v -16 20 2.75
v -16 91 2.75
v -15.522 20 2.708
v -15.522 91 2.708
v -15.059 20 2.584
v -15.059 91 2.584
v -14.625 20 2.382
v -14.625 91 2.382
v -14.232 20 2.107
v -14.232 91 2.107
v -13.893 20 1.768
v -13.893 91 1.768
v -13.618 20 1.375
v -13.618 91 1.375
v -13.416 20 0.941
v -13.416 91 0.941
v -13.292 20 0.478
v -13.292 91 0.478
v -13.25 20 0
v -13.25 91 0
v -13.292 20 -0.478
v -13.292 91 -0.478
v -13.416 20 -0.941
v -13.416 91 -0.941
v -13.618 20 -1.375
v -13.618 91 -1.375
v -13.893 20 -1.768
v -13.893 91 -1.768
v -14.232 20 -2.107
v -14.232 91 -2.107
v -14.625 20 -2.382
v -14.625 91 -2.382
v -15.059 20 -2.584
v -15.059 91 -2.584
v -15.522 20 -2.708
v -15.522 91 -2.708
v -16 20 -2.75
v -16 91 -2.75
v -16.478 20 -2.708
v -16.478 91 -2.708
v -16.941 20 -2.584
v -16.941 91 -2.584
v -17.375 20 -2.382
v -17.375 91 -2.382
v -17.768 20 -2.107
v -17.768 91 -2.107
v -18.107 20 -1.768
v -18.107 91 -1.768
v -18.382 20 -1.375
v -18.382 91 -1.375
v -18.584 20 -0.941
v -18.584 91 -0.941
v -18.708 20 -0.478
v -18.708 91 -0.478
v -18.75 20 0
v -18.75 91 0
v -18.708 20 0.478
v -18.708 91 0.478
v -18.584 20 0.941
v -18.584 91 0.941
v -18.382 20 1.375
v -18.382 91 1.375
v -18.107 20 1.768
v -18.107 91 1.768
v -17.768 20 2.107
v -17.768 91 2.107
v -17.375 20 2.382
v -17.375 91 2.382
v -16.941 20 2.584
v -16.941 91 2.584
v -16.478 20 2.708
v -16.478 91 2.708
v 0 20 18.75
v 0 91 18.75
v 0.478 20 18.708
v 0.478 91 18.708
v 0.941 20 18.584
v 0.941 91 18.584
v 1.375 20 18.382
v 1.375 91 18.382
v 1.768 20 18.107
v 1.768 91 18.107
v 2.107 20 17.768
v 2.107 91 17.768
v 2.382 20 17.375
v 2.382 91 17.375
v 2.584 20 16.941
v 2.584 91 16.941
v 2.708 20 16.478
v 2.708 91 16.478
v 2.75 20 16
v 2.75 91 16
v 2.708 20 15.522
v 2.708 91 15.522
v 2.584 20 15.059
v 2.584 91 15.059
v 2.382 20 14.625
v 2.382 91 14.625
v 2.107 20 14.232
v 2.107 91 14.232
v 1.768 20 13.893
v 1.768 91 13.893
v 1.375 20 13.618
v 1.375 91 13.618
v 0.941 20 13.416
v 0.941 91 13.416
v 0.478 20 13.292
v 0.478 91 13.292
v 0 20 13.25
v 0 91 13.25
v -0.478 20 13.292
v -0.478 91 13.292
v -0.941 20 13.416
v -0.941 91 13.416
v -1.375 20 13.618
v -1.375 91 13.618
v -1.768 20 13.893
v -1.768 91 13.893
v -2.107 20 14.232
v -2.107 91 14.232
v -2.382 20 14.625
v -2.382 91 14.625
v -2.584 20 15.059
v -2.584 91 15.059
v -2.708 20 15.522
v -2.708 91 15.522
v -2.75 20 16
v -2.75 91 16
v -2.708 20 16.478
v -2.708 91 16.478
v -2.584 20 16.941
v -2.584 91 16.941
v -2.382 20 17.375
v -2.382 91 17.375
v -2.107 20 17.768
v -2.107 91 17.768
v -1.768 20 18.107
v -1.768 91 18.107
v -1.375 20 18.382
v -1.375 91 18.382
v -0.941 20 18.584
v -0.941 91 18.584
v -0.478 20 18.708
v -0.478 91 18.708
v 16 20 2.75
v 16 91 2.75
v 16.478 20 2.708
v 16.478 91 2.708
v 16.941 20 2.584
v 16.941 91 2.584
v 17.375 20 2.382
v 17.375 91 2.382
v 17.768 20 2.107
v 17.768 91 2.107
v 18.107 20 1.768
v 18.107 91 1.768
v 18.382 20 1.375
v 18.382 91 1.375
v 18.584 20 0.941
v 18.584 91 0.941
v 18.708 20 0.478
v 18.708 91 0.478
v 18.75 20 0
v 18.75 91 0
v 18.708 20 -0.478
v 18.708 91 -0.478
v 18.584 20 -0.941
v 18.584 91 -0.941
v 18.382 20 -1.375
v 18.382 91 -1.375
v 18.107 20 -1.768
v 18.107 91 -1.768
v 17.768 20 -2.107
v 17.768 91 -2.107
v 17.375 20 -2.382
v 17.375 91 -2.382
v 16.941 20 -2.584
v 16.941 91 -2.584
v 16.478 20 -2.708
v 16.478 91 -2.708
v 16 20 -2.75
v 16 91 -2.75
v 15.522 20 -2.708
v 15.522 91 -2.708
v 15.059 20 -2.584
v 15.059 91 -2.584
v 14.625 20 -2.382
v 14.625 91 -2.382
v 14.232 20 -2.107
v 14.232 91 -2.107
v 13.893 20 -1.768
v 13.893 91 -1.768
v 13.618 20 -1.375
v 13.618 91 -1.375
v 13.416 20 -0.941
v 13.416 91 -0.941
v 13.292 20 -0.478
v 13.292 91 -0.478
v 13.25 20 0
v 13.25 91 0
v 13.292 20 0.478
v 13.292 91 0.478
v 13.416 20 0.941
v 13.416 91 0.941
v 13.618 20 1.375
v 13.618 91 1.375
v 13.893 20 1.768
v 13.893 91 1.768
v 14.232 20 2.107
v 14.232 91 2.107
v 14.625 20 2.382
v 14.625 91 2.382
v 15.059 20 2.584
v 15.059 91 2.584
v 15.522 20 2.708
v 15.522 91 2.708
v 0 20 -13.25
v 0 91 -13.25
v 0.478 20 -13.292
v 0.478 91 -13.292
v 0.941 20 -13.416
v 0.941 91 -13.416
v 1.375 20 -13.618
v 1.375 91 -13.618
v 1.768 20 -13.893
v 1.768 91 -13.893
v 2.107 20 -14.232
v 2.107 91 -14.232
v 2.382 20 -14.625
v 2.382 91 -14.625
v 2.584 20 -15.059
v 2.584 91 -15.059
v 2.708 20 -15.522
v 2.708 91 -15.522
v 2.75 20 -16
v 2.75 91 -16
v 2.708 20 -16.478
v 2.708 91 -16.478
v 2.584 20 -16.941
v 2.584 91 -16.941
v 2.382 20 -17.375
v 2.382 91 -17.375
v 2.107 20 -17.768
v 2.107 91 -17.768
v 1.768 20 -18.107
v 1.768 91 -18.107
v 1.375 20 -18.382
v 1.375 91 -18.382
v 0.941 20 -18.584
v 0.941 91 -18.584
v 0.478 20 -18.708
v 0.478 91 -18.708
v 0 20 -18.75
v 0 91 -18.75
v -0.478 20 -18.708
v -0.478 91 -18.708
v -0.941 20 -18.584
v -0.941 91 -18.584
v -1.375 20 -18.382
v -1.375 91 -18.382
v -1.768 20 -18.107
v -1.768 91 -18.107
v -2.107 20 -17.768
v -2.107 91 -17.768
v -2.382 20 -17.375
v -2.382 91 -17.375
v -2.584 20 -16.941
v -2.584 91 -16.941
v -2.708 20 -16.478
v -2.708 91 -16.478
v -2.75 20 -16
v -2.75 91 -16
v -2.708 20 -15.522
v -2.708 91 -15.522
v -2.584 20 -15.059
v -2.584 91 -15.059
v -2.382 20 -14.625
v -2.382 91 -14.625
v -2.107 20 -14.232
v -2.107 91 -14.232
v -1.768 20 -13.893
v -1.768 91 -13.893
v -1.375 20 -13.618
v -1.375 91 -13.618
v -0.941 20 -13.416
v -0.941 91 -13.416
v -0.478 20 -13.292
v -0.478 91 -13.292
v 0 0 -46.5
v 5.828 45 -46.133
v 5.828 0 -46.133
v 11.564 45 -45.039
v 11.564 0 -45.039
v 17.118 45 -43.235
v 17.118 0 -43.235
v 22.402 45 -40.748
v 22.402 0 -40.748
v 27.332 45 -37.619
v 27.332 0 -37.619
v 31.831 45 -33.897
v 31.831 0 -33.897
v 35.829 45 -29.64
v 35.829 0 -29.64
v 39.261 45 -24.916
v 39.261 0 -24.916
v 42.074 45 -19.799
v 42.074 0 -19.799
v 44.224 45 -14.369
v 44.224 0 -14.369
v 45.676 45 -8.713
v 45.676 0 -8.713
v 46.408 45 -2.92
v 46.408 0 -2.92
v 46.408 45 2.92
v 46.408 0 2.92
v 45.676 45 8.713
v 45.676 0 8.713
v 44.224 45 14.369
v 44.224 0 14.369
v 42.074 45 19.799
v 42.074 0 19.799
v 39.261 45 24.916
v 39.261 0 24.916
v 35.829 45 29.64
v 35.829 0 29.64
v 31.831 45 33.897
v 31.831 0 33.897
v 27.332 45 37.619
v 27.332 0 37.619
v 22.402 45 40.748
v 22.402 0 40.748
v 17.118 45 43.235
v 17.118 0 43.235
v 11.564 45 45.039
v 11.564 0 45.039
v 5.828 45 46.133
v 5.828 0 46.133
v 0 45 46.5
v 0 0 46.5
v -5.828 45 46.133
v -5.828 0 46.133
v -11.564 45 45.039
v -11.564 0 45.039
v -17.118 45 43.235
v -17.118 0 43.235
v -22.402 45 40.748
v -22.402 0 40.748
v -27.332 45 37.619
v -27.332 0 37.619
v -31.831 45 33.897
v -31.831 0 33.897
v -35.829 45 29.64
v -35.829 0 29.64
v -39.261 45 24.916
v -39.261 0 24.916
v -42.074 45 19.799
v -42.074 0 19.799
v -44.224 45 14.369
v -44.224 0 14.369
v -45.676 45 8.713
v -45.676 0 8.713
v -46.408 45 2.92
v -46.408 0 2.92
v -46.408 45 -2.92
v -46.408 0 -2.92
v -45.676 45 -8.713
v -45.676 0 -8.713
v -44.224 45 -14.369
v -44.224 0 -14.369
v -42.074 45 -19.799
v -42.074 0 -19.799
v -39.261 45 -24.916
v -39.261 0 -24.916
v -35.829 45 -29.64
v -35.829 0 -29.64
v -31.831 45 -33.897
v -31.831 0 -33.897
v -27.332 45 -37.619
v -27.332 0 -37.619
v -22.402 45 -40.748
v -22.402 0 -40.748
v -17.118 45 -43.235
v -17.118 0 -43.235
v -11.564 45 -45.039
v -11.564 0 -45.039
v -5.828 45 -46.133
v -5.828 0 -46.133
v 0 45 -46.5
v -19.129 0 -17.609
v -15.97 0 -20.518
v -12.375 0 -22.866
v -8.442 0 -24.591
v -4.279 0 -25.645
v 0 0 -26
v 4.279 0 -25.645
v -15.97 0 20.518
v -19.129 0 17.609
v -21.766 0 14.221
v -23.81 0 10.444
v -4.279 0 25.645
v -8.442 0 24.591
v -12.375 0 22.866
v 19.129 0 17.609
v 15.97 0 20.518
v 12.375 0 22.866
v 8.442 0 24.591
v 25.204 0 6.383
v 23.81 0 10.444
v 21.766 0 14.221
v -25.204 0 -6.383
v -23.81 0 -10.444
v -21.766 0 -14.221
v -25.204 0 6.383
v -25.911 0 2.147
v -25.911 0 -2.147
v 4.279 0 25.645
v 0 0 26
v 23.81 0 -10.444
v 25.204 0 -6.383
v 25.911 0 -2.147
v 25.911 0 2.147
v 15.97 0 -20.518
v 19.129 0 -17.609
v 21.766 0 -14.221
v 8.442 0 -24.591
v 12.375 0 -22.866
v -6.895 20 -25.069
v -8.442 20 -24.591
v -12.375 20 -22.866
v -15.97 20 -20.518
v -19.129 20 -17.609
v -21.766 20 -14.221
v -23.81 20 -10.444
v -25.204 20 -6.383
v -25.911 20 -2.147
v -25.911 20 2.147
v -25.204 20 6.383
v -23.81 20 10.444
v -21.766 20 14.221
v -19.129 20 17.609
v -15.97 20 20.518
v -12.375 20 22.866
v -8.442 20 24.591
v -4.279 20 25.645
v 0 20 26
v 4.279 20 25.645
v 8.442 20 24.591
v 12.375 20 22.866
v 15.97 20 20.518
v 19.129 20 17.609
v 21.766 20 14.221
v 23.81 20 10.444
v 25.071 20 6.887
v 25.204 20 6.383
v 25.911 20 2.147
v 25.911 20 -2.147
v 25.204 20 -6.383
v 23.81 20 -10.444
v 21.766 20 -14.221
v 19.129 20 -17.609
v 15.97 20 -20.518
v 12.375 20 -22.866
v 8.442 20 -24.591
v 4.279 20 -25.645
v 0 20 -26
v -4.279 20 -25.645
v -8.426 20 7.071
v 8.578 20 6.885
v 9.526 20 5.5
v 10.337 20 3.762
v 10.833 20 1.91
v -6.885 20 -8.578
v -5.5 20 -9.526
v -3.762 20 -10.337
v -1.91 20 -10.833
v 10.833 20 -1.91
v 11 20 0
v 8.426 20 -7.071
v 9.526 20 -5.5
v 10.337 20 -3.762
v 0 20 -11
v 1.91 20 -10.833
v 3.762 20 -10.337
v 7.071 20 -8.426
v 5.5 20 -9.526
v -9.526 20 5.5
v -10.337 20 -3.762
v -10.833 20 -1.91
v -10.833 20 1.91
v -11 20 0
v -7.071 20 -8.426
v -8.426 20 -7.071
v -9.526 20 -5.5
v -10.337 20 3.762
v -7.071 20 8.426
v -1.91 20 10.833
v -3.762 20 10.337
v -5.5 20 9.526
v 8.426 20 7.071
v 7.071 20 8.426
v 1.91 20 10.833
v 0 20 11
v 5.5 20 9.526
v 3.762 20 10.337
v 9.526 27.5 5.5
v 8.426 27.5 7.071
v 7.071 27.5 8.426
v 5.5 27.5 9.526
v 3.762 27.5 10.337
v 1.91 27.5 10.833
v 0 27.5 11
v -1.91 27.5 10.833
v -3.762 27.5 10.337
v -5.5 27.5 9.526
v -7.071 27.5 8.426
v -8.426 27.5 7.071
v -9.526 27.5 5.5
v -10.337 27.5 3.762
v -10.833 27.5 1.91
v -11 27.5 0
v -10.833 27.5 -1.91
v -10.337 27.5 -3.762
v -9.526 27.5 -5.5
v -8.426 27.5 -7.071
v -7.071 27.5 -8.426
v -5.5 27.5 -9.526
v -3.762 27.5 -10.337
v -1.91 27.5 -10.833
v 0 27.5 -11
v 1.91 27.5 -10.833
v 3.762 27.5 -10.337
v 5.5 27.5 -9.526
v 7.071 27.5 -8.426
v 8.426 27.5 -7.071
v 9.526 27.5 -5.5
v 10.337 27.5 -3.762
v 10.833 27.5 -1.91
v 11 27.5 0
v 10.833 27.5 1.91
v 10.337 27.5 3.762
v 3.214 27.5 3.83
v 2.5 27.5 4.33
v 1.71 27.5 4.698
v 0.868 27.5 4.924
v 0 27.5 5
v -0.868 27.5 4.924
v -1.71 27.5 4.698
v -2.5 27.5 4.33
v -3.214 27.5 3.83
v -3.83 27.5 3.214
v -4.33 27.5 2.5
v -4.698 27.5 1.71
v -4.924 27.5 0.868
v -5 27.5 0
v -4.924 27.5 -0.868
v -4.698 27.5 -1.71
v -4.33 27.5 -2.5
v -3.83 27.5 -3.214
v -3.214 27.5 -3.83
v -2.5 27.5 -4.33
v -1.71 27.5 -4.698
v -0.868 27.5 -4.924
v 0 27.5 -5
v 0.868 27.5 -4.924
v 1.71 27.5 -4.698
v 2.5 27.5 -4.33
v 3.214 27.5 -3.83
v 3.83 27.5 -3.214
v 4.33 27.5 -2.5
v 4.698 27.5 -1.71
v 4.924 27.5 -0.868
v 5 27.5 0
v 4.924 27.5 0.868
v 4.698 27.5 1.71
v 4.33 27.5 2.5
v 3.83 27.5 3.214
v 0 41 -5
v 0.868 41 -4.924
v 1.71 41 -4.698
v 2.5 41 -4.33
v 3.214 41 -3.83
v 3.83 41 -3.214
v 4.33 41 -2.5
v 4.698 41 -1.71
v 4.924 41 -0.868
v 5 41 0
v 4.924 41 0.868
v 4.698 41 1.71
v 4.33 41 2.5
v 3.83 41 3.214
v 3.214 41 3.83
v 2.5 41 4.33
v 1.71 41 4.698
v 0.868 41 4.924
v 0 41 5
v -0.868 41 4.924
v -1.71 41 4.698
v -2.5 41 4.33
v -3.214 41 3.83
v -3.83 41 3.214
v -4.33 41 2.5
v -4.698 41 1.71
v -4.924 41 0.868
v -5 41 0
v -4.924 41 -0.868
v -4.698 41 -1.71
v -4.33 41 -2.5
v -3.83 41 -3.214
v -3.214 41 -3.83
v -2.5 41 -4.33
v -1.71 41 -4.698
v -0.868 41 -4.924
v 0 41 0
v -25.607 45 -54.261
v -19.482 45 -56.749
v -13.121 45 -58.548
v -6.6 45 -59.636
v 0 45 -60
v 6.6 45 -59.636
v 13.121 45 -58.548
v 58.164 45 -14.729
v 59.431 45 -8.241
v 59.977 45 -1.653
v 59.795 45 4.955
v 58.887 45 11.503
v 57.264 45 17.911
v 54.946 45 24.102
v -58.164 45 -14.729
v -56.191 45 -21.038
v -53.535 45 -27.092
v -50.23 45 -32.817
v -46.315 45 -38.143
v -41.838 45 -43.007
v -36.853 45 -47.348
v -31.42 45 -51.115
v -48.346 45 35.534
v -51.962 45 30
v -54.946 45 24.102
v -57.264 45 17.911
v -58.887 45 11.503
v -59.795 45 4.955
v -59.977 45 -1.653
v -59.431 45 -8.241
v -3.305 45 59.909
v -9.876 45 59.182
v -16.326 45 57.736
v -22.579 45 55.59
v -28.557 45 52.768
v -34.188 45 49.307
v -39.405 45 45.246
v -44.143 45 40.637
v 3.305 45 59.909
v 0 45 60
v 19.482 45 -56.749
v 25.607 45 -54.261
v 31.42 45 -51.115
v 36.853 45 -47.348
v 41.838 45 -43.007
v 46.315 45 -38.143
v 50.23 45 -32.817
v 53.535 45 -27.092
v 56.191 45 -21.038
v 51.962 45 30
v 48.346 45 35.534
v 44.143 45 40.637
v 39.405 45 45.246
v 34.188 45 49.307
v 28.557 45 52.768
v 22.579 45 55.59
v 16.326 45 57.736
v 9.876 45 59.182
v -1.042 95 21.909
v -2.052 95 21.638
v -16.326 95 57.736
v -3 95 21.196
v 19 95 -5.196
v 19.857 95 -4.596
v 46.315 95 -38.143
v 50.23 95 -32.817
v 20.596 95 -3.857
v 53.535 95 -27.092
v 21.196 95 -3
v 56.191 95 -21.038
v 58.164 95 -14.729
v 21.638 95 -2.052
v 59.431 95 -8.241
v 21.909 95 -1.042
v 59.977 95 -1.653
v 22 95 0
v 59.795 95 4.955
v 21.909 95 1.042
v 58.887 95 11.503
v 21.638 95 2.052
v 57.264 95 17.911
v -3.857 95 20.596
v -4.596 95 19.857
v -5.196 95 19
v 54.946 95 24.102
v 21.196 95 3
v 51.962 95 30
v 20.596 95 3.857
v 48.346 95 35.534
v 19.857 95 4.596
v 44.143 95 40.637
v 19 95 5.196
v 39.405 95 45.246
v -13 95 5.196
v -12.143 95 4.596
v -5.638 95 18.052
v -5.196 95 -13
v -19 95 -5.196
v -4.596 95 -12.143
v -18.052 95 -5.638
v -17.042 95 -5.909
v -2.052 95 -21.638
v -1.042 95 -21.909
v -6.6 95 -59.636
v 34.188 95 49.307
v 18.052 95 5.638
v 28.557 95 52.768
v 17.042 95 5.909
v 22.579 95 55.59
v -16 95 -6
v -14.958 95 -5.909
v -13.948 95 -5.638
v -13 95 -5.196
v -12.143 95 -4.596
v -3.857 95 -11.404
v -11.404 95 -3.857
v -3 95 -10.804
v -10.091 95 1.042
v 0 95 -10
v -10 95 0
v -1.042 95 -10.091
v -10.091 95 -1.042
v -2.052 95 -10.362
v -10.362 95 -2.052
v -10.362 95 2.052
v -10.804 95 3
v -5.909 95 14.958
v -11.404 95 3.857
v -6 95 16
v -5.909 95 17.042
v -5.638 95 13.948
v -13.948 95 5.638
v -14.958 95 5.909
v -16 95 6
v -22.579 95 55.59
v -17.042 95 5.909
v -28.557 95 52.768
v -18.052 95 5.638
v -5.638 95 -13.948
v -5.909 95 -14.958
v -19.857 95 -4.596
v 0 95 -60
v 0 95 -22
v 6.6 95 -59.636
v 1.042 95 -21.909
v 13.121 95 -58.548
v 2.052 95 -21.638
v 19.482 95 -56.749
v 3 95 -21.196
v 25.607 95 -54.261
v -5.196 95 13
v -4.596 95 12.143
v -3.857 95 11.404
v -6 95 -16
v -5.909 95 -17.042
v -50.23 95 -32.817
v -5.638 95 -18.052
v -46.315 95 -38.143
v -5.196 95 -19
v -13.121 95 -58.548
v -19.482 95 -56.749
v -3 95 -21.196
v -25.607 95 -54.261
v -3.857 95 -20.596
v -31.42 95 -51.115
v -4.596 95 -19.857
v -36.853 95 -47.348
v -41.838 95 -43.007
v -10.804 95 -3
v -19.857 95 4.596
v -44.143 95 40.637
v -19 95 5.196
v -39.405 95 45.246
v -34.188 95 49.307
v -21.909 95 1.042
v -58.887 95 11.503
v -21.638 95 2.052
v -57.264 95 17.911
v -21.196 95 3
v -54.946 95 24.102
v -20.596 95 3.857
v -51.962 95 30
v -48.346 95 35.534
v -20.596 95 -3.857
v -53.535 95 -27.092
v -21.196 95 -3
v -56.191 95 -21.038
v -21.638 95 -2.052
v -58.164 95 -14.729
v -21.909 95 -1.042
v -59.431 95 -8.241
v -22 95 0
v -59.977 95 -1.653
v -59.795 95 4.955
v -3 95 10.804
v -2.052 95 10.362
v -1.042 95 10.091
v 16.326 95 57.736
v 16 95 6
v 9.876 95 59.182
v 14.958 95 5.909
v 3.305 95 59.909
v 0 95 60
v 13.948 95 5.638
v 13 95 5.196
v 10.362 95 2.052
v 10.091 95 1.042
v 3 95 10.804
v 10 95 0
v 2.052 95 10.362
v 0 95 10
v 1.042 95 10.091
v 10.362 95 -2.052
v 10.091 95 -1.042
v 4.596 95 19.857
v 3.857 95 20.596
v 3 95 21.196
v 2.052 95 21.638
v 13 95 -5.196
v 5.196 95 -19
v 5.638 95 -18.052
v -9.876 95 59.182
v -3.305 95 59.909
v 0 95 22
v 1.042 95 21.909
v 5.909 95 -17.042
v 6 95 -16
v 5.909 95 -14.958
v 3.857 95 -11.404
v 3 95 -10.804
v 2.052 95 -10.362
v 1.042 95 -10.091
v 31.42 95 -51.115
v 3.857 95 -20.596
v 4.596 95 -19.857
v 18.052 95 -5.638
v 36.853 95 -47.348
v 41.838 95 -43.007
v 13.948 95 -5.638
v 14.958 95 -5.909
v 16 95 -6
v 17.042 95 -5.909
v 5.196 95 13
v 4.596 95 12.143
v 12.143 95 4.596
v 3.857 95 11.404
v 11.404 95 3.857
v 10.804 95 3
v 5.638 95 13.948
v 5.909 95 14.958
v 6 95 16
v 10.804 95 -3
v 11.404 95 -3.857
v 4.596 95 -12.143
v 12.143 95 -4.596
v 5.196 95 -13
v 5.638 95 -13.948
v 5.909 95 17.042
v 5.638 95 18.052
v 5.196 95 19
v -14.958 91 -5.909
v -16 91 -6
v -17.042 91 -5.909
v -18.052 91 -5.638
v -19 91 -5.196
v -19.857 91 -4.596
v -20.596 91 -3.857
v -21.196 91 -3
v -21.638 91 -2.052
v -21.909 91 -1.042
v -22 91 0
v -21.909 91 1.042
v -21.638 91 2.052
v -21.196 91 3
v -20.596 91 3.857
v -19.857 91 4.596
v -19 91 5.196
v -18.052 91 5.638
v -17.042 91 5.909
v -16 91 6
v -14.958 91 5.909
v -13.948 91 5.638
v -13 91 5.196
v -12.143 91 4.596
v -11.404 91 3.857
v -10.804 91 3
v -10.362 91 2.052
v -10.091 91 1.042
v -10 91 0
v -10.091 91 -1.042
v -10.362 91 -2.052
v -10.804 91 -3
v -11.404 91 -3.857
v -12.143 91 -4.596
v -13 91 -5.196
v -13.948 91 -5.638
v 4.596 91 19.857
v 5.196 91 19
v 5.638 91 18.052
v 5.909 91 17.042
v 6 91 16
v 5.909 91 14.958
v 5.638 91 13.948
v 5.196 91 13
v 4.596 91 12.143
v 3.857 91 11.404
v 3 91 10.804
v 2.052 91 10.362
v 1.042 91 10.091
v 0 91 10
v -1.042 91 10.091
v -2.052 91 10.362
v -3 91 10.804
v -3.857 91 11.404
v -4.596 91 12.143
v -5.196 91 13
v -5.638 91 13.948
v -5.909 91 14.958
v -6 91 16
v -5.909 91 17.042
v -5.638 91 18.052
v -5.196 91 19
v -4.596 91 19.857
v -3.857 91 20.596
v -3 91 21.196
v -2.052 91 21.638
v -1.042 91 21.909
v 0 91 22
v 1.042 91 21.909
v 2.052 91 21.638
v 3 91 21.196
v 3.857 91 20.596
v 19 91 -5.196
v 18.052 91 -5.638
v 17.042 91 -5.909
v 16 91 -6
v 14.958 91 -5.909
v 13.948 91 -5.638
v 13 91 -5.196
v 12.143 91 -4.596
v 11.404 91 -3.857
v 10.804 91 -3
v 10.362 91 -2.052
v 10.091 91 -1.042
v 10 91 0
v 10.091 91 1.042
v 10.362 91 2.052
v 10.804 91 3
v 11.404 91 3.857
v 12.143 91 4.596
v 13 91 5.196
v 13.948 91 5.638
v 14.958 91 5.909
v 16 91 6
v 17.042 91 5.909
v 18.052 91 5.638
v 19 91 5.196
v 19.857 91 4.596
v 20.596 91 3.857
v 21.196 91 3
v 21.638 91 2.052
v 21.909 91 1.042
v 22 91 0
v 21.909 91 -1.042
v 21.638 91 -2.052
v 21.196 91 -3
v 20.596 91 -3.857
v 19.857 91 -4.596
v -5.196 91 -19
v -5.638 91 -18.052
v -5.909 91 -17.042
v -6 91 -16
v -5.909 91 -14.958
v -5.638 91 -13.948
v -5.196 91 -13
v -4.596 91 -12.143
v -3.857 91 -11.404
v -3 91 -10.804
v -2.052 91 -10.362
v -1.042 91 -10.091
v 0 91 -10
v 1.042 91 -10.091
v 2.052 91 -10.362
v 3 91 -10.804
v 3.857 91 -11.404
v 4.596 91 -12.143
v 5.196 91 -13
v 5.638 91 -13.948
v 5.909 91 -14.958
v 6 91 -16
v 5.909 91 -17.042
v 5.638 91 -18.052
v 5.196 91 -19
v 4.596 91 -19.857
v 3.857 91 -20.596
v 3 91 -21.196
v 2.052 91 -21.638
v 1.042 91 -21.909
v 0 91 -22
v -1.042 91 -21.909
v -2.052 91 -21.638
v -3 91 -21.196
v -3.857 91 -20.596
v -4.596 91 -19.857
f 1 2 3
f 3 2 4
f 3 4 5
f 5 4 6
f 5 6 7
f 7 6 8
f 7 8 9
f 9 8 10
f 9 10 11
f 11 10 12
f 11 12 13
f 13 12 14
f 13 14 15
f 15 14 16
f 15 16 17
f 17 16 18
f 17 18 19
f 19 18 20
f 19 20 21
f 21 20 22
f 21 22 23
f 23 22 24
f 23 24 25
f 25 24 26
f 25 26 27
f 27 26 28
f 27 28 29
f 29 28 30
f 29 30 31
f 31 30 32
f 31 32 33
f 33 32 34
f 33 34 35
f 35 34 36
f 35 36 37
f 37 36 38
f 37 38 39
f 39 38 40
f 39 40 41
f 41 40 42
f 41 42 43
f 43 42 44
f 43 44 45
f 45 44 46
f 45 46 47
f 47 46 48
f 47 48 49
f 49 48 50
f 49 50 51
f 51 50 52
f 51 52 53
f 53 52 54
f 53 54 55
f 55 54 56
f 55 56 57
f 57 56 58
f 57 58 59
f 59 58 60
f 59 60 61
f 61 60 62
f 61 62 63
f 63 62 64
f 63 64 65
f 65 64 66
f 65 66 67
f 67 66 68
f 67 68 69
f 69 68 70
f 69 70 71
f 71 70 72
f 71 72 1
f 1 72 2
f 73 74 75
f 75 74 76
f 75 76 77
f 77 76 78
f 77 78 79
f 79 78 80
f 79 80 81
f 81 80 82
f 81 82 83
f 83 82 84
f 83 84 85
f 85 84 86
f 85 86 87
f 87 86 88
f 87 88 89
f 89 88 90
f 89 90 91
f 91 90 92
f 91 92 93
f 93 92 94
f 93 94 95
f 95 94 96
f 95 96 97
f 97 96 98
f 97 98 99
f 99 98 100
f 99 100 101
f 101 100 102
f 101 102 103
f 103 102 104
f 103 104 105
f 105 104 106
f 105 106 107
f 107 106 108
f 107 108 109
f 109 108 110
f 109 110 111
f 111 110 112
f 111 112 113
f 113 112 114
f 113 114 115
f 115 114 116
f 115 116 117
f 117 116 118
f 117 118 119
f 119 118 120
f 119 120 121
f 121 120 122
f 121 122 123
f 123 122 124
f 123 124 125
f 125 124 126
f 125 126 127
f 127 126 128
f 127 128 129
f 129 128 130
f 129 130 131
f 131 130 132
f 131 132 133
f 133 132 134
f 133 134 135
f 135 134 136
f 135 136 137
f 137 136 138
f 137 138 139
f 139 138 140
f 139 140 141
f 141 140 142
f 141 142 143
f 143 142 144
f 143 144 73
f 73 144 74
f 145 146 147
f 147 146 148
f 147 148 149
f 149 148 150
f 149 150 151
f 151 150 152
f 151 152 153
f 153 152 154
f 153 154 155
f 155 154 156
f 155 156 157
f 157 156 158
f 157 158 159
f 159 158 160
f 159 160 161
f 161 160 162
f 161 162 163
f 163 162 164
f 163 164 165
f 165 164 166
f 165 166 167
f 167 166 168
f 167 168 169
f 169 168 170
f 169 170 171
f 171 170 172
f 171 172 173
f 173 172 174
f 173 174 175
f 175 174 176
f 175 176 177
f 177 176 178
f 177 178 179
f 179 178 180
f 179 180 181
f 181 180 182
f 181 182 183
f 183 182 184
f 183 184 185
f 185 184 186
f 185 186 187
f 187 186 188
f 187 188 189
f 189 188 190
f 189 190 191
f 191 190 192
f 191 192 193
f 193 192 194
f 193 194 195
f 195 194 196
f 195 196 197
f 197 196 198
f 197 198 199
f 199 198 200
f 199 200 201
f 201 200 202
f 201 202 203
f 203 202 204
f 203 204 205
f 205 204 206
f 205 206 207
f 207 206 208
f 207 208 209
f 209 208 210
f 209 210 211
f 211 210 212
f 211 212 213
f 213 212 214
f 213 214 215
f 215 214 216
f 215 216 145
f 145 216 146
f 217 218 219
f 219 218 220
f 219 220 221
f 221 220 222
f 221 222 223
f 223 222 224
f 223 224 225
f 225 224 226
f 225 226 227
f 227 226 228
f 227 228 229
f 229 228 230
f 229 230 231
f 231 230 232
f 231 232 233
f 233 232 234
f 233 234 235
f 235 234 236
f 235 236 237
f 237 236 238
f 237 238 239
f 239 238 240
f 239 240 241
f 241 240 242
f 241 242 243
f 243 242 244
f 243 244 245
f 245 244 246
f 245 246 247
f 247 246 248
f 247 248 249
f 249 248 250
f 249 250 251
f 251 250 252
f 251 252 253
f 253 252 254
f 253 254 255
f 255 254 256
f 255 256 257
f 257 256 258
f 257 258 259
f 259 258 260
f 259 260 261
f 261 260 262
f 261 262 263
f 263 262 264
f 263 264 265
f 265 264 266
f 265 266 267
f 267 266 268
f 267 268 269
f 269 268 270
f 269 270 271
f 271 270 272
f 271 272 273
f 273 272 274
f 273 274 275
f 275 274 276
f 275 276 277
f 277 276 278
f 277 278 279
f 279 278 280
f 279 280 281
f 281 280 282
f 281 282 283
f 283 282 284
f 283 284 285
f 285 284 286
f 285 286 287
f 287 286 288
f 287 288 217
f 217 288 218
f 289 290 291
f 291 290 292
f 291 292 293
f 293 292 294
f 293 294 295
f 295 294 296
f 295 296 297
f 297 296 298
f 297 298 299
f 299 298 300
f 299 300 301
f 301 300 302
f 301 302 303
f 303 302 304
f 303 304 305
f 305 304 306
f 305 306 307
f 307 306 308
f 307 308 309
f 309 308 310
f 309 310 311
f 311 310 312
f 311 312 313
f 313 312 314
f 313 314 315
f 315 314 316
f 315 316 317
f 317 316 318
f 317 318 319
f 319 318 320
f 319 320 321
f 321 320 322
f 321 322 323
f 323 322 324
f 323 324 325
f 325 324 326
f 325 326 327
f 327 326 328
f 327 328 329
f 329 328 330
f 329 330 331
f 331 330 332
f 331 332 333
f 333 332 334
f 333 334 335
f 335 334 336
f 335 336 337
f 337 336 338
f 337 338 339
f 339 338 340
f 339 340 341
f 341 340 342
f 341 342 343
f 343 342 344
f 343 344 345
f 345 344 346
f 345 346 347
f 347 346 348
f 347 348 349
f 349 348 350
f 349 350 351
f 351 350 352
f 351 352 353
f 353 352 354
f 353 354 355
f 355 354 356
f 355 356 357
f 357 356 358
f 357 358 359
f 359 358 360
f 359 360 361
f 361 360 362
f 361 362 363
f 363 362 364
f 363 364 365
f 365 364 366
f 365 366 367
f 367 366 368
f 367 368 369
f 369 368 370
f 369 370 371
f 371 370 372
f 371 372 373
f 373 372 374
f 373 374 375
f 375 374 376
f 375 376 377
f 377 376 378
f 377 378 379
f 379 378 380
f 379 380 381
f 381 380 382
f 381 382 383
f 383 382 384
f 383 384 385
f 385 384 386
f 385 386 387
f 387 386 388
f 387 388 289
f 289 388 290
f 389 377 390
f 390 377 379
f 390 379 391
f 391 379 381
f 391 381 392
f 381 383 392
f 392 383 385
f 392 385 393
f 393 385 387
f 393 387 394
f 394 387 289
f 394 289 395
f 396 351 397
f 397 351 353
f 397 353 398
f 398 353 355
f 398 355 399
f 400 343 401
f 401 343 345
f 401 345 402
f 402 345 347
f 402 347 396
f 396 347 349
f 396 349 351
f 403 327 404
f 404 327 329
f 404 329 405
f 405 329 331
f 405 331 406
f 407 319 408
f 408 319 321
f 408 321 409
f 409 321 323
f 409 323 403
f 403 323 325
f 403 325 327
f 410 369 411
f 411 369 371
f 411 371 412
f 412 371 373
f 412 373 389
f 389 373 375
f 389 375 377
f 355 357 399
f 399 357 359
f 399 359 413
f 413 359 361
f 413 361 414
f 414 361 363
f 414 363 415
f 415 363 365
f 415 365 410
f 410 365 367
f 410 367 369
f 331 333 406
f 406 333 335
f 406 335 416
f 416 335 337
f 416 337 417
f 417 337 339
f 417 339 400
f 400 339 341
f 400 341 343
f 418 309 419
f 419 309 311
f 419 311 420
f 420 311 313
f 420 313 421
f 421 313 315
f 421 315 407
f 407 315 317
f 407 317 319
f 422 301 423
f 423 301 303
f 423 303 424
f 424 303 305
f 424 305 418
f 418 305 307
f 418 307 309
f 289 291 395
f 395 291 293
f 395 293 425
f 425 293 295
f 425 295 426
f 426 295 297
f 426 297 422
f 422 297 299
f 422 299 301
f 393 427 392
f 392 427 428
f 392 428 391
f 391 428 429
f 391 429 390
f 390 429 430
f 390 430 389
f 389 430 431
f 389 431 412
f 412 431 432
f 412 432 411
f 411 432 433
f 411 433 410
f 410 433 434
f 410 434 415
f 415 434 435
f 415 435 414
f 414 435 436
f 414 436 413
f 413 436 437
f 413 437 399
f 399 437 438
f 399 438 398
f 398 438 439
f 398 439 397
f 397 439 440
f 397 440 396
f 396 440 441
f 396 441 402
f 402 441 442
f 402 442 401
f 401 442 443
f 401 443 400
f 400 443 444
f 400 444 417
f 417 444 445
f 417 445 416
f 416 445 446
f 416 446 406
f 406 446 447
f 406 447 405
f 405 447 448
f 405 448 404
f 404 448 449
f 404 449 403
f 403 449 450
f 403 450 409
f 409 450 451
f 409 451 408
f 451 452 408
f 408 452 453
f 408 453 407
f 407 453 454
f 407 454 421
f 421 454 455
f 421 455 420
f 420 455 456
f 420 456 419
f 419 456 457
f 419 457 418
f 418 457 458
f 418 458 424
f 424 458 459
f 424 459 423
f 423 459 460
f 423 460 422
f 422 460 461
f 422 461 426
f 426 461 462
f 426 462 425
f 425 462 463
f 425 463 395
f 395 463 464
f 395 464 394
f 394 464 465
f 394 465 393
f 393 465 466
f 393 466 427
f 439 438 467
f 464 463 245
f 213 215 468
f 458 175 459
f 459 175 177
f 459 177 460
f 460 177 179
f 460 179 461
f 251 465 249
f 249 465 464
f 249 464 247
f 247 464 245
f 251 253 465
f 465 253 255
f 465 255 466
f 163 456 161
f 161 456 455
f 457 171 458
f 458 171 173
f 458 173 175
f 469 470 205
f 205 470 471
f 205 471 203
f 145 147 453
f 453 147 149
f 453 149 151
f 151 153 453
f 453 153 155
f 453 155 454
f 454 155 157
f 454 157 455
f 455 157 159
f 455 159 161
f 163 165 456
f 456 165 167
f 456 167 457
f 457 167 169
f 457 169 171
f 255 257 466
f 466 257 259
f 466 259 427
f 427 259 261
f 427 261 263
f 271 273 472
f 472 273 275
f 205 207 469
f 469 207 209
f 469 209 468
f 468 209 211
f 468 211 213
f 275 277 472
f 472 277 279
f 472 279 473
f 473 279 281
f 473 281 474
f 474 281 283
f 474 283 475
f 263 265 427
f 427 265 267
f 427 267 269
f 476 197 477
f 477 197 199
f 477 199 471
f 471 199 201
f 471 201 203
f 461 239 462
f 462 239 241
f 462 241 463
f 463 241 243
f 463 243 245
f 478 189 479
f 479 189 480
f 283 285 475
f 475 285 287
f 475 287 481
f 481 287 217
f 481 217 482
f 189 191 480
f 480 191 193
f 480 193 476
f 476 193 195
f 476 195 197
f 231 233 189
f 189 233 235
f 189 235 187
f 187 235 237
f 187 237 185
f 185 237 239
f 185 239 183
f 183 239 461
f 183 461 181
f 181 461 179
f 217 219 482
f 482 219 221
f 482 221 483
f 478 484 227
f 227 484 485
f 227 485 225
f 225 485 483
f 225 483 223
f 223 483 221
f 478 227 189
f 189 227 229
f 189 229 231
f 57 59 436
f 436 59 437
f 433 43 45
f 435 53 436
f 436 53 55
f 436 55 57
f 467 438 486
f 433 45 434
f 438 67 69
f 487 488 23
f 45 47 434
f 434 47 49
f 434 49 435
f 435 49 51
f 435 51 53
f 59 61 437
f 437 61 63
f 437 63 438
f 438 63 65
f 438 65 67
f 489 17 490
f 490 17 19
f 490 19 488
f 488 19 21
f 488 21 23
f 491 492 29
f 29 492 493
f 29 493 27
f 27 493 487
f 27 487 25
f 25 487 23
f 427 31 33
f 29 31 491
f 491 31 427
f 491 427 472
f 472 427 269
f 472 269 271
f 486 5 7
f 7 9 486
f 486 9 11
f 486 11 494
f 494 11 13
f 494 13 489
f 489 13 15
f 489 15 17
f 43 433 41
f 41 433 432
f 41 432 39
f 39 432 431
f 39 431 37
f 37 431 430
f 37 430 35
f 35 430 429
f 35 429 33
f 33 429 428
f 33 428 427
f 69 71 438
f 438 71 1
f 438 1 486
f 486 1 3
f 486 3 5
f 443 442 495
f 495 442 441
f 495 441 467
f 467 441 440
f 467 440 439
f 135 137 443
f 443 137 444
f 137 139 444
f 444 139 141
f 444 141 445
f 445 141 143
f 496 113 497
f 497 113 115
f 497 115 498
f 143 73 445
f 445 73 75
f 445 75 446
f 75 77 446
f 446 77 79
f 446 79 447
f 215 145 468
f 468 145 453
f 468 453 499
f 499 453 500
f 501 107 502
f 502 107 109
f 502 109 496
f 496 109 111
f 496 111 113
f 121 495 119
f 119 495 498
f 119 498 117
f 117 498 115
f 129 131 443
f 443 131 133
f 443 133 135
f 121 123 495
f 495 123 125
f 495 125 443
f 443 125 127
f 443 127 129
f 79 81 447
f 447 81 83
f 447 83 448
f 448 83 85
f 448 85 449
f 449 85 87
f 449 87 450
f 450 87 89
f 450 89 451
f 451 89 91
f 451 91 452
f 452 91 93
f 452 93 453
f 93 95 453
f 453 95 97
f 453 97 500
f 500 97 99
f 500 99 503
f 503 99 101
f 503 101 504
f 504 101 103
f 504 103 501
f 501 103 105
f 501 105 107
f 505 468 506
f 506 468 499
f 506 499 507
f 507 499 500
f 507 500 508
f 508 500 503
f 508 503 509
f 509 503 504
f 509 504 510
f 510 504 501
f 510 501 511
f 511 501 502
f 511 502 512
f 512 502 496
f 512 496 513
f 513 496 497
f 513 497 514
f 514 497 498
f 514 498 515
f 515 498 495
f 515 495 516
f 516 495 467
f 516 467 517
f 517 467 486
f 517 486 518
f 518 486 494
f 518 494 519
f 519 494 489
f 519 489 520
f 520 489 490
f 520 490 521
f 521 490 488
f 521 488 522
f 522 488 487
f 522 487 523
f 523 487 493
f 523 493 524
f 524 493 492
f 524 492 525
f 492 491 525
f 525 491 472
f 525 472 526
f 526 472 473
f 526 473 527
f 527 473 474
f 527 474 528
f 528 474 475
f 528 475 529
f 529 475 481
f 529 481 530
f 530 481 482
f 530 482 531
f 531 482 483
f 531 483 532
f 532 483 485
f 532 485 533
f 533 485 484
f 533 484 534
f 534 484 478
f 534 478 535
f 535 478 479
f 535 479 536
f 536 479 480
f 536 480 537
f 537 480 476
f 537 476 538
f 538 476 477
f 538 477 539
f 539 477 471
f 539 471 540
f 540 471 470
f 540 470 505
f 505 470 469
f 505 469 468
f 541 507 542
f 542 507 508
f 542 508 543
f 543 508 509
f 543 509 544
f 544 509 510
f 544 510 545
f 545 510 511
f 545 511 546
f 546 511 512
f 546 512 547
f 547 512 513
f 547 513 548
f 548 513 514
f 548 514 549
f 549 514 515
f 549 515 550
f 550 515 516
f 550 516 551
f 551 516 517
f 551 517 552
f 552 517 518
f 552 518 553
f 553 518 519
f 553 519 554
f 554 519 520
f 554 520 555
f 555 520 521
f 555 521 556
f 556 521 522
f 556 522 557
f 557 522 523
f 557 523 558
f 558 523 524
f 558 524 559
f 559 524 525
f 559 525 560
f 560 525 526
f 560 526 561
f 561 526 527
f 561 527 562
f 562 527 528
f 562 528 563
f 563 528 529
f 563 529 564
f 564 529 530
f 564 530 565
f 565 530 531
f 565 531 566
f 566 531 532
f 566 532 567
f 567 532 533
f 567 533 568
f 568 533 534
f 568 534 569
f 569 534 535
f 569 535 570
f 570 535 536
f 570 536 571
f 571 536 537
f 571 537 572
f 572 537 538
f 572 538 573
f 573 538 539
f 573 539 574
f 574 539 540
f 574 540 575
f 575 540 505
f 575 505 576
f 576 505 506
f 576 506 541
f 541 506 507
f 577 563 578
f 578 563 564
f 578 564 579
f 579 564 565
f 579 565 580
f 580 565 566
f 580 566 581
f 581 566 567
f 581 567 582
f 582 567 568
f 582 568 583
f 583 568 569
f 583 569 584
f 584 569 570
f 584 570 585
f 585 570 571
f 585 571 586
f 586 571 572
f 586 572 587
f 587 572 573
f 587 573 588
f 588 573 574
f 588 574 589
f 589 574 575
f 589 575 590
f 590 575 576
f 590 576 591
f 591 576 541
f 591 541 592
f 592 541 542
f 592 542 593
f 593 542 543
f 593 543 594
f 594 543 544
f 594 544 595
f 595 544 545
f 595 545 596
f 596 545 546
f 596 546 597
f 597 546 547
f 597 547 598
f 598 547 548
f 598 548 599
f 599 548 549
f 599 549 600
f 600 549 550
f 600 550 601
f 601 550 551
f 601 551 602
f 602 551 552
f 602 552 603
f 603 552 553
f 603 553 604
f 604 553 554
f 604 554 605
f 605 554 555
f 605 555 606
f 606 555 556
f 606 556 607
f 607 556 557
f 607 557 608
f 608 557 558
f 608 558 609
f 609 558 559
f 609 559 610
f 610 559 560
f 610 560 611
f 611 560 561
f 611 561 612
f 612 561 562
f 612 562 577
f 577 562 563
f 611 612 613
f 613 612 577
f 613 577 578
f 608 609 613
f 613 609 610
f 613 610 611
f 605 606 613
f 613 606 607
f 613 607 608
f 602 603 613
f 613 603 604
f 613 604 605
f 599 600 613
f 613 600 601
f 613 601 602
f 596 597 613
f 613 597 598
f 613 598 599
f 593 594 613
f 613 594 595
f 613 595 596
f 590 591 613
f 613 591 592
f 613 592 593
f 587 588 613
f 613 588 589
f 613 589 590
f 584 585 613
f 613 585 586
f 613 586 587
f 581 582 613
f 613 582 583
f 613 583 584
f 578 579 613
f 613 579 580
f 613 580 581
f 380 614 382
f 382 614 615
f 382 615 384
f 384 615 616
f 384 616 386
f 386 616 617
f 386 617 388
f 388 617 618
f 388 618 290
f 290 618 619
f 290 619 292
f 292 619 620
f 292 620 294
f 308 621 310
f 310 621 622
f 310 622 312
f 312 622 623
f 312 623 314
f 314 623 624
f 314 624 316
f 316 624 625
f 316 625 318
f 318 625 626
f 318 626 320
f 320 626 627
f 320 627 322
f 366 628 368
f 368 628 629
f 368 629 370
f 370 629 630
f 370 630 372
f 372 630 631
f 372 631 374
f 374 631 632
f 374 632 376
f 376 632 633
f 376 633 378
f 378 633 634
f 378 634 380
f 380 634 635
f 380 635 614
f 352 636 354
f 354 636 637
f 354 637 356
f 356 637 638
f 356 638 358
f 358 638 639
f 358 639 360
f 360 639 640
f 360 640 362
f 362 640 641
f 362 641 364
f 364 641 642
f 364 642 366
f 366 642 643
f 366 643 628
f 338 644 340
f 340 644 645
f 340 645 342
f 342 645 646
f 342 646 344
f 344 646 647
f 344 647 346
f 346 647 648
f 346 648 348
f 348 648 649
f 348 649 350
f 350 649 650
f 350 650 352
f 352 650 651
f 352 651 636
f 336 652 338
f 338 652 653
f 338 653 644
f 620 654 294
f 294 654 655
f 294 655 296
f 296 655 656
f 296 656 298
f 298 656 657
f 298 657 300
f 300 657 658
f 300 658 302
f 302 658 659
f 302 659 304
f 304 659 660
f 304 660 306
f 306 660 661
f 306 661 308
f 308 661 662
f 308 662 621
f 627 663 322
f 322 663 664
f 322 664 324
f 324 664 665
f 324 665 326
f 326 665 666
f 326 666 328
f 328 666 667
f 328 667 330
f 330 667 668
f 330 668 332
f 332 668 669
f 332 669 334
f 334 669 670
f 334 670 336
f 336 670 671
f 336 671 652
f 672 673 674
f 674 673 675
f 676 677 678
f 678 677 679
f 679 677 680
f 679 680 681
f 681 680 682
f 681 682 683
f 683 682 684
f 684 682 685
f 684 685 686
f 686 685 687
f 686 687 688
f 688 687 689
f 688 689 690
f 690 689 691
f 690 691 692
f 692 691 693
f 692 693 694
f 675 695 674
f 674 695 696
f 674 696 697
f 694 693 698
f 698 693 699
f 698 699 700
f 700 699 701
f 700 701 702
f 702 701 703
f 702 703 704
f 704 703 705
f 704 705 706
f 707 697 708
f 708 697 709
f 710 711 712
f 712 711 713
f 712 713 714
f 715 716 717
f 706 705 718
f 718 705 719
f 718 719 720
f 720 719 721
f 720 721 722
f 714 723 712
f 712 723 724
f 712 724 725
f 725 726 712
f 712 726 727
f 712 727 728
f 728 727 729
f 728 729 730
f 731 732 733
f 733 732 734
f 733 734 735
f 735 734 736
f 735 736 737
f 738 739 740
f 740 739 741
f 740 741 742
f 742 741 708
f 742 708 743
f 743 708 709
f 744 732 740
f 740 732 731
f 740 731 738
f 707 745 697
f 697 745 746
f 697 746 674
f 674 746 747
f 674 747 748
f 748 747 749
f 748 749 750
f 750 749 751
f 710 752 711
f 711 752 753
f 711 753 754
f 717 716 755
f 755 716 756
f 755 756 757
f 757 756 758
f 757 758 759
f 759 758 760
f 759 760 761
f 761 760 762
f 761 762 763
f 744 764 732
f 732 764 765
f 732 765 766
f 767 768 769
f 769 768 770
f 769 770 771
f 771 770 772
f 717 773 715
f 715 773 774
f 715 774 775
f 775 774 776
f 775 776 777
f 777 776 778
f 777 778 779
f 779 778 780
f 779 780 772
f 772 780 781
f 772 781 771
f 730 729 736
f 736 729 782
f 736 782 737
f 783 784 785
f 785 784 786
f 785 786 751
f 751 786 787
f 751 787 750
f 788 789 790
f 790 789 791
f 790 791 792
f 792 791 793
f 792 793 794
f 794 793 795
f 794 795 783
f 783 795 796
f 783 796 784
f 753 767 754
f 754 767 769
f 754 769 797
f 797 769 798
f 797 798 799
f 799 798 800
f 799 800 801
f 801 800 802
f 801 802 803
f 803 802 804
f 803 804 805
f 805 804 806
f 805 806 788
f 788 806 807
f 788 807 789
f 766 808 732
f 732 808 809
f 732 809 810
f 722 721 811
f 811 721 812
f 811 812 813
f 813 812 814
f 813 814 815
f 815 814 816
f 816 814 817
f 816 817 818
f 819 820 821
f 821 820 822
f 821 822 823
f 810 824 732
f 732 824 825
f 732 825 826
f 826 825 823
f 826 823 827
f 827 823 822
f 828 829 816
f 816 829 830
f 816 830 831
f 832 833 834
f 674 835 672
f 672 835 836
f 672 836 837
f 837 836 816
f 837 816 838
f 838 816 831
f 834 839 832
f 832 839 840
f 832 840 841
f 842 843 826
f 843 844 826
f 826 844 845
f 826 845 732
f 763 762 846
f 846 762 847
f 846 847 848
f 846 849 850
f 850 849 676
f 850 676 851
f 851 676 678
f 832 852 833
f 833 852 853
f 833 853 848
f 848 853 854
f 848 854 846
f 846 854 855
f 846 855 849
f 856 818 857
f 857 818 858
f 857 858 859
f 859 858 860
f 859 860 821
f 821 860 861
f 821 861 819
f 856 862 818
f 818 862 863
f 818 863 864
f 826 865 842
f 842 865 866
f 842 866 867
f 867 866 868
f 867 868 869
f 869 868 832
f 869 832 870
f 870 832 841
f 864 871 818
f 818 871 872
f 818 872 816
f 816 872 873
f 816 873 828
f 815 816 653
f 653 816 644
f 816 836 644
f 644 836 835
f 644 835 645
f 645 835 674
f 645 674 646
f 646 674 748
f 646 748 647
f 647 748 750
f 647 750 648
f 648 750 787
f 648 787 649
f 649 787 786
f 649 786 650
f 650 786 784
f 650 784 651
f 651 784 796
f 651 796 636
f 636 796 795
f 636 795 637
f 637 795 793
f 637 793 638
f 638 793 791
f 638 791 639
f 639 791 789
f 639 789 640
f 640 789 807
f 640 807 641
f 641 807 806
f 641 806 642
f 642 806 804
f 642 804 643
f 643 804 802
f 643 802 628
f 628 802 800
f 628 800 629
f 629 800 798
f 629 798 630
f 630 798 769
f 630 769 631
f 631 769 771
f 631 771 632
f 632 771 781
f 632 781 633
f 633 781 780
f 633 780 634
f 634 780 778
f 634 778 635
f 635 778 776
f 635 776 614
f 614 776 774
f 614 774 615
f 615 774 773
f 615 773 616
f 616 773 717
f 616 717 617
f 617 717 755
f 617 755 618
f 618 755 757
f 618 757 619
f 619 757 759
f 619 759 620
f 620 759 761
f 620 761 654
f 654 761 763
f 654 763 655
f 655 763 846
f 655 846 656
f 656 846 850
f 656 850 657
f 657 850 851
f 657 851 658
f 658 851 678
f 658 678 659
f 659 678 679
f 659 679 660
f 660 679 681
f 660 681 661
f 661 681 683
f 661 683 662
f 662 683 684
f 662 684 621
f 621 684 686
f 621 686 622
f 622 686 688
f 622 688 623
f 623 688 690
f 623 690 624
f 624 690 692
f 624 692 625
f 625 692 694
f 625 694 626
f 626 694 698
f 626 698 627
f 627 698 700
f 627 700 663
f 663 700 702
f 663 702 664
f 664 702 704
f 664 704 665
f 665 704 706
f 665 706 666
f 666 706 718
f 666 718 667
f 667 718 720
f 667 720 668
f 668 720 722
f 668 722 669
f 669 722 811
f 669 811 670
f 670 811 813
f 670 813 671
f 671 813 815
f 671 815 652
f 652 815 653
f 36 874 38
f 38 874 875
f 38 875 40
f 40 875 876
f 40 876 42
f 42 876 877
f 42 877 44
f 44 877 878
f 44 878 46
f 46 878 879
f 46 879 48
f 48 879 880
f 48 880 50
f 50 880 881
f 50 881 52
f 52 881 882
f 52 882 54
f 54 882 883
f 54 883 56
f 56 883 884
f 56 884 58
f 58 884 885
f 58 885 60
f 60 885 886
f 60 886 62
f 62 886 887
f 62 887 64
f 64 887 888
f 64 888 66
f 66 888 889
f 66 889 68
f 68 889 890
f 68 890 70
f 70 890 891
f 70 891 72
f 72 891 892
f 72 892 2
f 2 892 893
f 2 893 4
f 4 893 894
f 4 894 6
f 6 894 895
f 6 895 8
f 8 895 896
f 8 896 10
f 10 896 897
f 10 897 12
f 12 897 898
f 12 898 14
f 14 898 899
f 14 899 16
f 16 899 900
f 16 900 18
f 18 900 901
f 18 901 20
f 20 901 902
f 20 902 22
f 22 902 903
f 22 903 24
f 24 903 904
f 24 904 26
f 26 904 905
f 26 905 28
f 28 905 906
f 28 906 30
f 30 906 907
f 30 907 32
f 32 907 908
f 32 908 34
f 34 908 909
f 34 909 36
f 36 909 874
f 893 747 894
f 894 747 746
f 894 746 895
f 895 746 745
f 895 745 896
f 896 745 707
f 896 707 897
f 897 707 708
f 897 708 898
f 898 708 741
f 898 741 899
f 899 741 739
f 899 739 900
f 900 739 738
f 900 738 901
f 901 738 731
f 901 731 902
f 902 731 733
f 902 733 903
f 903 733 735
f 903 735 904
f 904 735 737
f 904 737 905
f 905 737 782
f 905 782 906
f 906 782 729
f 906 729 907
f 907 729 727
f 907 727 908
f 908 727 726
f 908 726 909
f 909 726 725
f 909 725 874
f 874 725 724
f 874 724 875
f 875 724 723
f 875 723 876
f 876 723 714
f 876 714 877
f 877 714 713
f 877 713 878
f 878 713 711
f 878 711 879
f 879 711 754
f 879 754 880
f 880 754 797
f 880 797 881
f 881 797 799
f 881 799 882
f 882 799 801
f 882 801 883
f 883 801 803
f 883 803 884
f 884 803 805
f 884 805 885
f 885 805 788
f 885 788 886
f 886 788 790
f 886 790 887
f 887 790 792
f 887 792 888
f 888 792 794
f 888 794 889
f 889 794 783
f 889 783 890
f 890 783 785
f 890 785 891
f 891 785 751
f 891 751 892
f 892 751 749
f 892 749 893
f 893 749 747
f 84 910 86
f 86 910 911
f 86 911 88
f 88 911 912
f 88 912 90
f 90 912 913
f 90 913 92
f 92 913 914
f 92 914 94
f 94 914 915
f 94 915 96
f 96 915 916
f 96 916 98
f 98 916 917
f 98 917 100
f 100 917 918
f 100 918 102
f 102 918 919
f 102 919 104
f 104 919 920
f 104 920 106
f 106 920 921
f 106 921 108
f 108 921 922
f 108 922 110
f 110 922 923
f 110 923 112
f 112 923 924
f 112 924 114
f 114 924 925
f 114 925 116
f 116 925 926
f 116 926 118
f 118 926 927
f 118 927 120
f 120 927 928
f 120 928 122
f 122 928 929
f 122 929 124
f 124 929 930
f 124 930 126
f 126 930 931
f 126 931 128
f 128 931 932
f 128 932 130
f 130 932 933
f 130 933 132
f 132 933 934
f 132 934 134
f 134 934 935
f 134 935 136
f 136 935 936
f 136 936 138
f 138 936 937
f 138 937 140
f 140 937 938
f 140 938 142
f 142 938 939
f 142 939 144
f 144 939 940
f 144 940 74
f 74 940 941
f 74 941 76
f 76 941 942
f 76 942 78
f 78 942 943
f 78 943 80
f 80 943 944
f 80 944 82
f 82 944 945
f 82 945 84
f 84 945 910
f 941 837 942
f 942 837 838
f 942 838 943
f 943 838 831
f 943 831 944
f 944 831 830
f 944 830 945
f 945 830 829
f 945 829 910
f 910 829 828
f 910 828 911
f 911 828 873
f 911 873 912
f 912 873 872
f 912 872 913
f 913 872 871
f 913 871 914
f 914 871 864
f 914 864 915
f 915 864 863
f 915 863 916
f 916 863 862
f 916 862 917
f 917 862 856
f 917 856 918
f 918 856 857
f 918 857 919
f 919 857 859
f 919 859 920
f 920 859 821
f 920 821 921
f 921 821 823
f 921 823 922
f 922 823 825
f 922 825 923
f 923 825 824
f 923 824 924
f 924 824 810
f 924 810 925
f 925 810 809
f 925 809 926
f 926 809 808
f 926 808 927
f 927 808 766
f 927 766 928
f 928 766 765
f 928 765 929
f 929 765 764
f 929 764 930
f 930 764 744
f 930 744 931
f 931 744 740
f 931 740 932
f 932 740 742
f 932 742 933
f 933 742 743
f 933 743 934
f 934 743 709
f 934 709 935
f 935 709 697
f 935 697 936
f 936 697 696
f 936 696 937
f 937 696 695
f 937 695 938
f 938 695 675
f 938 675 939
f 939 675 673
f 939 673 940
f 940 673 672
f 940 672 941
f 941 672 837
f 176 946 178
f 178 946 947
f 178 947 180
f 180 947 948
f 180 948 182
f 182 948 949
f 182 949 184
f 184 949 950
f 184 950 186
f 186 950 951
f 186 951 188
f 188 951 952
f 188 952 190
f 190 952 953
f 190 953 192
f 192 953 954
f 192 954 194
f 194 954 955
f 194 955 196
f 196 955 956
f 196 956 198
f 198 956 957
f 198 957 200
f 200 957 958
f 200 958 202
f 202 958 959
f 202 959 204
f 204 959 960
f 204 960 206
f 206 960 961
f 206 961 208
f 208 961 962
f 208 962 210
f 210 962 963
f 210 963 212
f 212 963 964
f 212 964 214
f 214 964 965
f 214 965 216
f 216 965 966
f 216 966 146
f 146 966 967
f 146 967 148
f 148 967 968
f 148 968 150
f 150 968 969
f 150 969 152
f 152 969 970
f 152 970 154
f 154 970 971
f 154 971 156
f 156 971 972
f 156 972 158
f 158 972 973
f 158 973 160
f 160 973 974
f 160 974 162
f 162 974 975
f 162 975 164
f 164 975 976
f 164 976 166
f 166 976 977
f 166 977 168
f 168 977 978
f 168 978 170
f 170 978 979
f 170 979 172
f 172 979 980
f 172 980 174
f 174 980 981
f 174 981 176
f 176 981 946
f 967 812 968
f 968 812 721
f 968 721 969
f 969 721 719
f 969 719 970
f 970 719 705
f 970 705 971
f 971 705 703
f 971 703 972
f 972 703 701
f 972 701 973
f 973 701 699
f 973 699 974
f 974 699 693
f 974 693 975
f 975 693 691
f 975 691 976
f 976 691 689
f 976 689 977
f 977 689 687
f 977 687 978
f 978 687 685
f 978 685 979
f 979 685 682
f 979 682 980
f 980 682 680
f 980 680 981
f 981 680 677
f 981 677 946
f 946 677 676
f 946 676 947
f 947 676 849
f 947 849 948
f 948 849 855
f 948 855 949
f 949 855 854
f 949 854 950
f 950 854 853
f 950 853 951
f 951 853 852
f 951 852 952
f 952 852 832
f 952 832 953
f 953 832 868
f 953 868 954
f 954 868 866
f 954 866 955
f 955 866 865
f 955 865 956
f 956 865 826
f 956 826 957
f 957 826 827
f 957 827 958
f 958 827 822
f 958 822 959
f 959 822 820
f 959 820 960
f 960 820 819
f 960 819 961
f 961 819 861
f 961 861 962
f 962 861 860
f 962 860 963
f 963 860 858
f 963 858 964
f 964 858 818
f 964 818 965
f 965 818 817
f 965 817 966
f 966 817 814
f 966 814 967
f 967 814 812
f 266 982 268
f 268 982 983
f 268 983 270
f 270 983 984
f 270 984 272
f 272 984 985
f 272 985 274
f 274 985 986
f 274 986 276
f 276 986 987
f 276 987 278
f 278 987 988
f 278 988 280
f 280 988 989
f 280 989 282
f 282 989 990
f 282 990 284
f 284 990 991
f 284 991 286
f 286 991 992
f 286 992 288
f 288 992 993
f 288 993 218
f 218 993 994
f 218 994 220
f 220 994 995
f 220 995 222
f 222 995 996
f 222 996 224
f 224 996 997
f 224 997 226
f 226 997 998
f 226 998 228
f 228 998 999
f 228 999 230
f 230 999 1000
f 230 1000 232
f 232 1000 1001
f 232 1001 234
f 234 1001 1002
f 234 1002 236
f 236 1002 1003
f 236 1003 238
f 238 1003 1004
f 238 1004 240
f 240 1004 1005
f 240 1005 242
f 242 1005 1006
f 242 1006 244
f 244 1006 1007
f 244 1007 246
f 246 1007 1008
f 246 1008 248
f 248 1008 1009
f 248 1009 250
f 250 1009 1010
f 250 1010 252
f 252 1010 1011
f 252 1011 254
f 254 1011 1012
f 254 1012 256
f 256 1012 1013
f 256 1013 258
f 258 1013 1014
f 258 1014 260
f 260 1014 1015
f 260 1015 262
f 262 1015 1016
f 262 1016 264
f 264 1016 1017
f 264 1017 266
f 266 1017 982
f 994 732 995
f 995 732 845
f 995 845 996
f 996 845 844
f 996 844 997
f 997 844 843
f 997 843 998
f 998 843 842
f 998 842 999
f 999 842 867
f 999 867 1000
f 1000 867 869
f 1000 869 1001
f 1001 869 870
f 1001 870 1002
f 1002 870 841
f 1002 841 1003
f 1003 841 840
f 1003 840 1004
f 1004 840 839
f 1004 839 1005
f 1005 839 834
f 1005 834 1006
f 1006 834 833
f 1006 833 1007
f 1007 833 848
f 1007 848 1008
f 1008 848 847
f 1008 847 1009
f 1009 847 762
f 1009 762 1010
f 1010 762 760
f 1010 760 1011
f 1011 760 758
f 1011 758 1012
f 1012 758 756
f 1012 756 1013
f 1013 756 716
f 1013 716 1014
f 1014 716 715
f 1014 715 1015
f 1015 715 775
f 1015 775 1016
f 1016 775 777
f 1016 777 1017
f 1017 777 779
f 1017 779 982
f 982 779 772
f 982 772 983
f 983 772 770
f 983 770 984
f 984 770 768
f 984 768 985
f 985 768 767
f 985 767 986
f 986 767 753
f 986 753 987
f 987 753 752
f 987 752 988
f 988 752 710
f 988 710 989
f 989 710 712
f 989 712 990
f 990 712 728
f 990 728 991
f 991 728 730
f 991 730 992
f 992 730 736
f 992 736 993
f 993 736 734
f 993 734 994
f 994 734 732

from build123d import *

# Parameters (mm, degrees)
ESQUISSE1_R              = 47.75
BOSS_EXTRU_1_DEPTH       = 50
ESQUISSE2_R              = 26
ENL_V_MAT_EXTRU_1_DEPTH  = 20
ESQUISSE3_R              = 11
ENL_V_MAT_EXTRU_5_DEPTH  = 7.5
ESQUISSE4_R              = 5
ENL_V_MAT_EXTRU_6_DEPTH  = 13.5
ESQUISSE11_R             = 2.75
ENL_V_MAT_EXTRU_11_DEPTH = 85.024549984
ESQUISSE12_R             = 47.75
ESQUISSE12_R_2           = 46.5
ENL_V_MAT_EXTRU_12_DEPTH = 85.024549984
ESQUISSE16_R             = 60
BOSS_EXTRU_3_DEPTH       = 50
ESQUISSE17_R             = 2.75
ENL_V_MAT_EXTRU_14_DEPTH = 128.377392029
ESQUISSE18_R             = 6
ENL_V_MAT_EXTRU_15_DEPTH = 4


with BuildPart() as part:
    # Esquisse1 → Boss.-Extru.1 (new body)
    with BuildSketch(Plane(origin=(0, 0, 0), x_dir=(1, 0, 0), z_dir=(0, 1, 0))):
        with Locations(Location((0, 0, 0), (0, 0, 270))):
            Circle(ESQUISSE1_R)
    extrude(amount=BOSS_EXTRU_1_DEPTH)

    # Esquisse2 → Enlèv. mat.-Extru.1 (cut)
    with BuildSketch(Plane(origin=(0, 0, 0), x_dir=(-1, 0, 0), z_dir=(0, -1, 0))):
        with Locations(Location((0, 0, 0), (0, 0, 90))):
            Circle(ESQUISSE2_R)
    extrude(amount=-ENL_V_MAT_EXTRU_1_DEPTH, mode=Mode.SUBTRACT)

    # Esquisse3 → Enlèv. mat.-Extru.5 (cut)
    with BuildSketch(Plane(origin=(0, 20, 0), x_dir=(-1, 0, 0), z_dir=(0, -1, 0))):
        with Locations(Location((0, 0, 0), (0, 0, 90))):
            Circle(ESQUISSE3_R)
    extrude(amount=-ENL_V_MAT_EXTRU_5_DEPTH, mode=Mode.SUBTRACT)

    # Esquisse4 → Enlèv. mat.-Extru.6 (cut)
    with BuildSketch(Plane(origin=(0, 27.5, 0), x_dir=(-1, 0, 0), z_dir=(0, -1, 0))):
        with Locations(Location((0, 0, 0), (0, 0, 90))):
            Circle(ESQUISSE4_R)
    extrude(amount=-ENL_V_MAT_EXTRU_6_DEPTH, mode=Mode.SUBTRACT)

    # Esquisse11 → Enlèv. mat.-Extru.11 (cut, through all)
    with BuildSketch(Plane(origin=(0, 50, 0), x_dir=(1, 0, 0), z_dir=(0, 1, 0))):
        with Locations(Location((-16, 0, 0), (0, 0, 270))):
            Circle(ESQUISSE11_R)
        with Locations(Location((0, 16, 0), (0, 0, 270))):
            Circle(ESQUISSE11_R)
        with Locations(Location((16, 0, 0), (0, 0, 270))):
            Circle(ESQUISSE11_R)
        with Locations(Location((0, -16, 0), (0, 0, 270))):
            Circle(ESQUISSE11_R)
    extrude(amount=-ENL_V_MAT_EXTRU_11_DEPTH, mode=Mode.SUBTRACT)

    # Esquisse12 → Enlèv. mat.-Extru.12 (cut, through all)
    with BuildSketch(Plane.XZ):
        Circle(ESQUISSE12_R)
        with Locations(Location((0, 0, 0), (0, 0, 270))):
            Circle(ESQUISSE12_R_2, mode=Mode.SUBTRACT)
    extrude(amount=-ENL_V_MAT_EXTRU_12_DEPTH, mode=Mode.SUBTRACT)

    # Enlèv. mat.-Surface1
    split(bisect_by=Plane(origin=(0, 45, 0), x_dir=(1, 0, 0), z_dir=(0, 1, 0)), keep=Keep.BOTTOM)

    # Esquisse16 → Boss.-Extru.3 (add)
    with BuildSketch(Plane(origin=(0, 45, 0), x_dir=(1, 0, 0), z_dir=(0, 1, 0))):
        with Locations(Location((0, 0, 0), (0, 0, 270))):
            Circle(ESQUISSE16_R)
    extrude(amount=BOSS_EXTRU_3_DEPTH)

    # Esquisse17 → Enlèv. mat.-Extru.14 (cut, through all)
    with BuildSketch(Plane(origin=(0, 95, 0), x_dir=(1, 0, 0), z_dir=(0, 1, 0))):
        with Locations(Location((0, -16, 0), (0, 0, 270))):
            Circle(ESQUISSE17_R)
        with Locations(Location((-16, 0, 0), (0, 0, 270))):
            Circle(ESQUISSE17_R)
        with Locations(Location((0, 16, 0), (0, 0, 270))):
            Circle(ESQUISSE17_R)
        with Locations(Location((16, 0, 0), (0, 0, 270))):
            Circle(ESQUISSE17_R)
    extrude(amount=-ENL_V_MAT_EXTRU_14_DEPTH, mode=Mode.SUBTRACT)

    # Esquisse18 → Enlèv. mat.-Extru.15 (cut)
    with BuildSketch(Plane(origin=(0, 95, 0), x_dir=(1, 0, 0), z_dir=(0, 1, 0))):
        with Locations(Location((0, 16, 0), (0, 0, 270))):
            Circle(ESQUISSE18_R)
        with Locations(Location((16, 0, 0), (0, 0, 270))):
            Circle(ESQUISSE18_R)
        with Locations(Location((0, -16, 0), (0, 0, 270))):
            Circle(ESQUISSE18_R)
        with Locations(Location((-16, 0, 0), (0, 0, 270))):
            Circle(ESQUISSE18_R)
    extrude(amount=-ENL_V_MAT_EXTRU_15_DEPTH, mode=Mode.SUBTRACT)


solid = part.part
